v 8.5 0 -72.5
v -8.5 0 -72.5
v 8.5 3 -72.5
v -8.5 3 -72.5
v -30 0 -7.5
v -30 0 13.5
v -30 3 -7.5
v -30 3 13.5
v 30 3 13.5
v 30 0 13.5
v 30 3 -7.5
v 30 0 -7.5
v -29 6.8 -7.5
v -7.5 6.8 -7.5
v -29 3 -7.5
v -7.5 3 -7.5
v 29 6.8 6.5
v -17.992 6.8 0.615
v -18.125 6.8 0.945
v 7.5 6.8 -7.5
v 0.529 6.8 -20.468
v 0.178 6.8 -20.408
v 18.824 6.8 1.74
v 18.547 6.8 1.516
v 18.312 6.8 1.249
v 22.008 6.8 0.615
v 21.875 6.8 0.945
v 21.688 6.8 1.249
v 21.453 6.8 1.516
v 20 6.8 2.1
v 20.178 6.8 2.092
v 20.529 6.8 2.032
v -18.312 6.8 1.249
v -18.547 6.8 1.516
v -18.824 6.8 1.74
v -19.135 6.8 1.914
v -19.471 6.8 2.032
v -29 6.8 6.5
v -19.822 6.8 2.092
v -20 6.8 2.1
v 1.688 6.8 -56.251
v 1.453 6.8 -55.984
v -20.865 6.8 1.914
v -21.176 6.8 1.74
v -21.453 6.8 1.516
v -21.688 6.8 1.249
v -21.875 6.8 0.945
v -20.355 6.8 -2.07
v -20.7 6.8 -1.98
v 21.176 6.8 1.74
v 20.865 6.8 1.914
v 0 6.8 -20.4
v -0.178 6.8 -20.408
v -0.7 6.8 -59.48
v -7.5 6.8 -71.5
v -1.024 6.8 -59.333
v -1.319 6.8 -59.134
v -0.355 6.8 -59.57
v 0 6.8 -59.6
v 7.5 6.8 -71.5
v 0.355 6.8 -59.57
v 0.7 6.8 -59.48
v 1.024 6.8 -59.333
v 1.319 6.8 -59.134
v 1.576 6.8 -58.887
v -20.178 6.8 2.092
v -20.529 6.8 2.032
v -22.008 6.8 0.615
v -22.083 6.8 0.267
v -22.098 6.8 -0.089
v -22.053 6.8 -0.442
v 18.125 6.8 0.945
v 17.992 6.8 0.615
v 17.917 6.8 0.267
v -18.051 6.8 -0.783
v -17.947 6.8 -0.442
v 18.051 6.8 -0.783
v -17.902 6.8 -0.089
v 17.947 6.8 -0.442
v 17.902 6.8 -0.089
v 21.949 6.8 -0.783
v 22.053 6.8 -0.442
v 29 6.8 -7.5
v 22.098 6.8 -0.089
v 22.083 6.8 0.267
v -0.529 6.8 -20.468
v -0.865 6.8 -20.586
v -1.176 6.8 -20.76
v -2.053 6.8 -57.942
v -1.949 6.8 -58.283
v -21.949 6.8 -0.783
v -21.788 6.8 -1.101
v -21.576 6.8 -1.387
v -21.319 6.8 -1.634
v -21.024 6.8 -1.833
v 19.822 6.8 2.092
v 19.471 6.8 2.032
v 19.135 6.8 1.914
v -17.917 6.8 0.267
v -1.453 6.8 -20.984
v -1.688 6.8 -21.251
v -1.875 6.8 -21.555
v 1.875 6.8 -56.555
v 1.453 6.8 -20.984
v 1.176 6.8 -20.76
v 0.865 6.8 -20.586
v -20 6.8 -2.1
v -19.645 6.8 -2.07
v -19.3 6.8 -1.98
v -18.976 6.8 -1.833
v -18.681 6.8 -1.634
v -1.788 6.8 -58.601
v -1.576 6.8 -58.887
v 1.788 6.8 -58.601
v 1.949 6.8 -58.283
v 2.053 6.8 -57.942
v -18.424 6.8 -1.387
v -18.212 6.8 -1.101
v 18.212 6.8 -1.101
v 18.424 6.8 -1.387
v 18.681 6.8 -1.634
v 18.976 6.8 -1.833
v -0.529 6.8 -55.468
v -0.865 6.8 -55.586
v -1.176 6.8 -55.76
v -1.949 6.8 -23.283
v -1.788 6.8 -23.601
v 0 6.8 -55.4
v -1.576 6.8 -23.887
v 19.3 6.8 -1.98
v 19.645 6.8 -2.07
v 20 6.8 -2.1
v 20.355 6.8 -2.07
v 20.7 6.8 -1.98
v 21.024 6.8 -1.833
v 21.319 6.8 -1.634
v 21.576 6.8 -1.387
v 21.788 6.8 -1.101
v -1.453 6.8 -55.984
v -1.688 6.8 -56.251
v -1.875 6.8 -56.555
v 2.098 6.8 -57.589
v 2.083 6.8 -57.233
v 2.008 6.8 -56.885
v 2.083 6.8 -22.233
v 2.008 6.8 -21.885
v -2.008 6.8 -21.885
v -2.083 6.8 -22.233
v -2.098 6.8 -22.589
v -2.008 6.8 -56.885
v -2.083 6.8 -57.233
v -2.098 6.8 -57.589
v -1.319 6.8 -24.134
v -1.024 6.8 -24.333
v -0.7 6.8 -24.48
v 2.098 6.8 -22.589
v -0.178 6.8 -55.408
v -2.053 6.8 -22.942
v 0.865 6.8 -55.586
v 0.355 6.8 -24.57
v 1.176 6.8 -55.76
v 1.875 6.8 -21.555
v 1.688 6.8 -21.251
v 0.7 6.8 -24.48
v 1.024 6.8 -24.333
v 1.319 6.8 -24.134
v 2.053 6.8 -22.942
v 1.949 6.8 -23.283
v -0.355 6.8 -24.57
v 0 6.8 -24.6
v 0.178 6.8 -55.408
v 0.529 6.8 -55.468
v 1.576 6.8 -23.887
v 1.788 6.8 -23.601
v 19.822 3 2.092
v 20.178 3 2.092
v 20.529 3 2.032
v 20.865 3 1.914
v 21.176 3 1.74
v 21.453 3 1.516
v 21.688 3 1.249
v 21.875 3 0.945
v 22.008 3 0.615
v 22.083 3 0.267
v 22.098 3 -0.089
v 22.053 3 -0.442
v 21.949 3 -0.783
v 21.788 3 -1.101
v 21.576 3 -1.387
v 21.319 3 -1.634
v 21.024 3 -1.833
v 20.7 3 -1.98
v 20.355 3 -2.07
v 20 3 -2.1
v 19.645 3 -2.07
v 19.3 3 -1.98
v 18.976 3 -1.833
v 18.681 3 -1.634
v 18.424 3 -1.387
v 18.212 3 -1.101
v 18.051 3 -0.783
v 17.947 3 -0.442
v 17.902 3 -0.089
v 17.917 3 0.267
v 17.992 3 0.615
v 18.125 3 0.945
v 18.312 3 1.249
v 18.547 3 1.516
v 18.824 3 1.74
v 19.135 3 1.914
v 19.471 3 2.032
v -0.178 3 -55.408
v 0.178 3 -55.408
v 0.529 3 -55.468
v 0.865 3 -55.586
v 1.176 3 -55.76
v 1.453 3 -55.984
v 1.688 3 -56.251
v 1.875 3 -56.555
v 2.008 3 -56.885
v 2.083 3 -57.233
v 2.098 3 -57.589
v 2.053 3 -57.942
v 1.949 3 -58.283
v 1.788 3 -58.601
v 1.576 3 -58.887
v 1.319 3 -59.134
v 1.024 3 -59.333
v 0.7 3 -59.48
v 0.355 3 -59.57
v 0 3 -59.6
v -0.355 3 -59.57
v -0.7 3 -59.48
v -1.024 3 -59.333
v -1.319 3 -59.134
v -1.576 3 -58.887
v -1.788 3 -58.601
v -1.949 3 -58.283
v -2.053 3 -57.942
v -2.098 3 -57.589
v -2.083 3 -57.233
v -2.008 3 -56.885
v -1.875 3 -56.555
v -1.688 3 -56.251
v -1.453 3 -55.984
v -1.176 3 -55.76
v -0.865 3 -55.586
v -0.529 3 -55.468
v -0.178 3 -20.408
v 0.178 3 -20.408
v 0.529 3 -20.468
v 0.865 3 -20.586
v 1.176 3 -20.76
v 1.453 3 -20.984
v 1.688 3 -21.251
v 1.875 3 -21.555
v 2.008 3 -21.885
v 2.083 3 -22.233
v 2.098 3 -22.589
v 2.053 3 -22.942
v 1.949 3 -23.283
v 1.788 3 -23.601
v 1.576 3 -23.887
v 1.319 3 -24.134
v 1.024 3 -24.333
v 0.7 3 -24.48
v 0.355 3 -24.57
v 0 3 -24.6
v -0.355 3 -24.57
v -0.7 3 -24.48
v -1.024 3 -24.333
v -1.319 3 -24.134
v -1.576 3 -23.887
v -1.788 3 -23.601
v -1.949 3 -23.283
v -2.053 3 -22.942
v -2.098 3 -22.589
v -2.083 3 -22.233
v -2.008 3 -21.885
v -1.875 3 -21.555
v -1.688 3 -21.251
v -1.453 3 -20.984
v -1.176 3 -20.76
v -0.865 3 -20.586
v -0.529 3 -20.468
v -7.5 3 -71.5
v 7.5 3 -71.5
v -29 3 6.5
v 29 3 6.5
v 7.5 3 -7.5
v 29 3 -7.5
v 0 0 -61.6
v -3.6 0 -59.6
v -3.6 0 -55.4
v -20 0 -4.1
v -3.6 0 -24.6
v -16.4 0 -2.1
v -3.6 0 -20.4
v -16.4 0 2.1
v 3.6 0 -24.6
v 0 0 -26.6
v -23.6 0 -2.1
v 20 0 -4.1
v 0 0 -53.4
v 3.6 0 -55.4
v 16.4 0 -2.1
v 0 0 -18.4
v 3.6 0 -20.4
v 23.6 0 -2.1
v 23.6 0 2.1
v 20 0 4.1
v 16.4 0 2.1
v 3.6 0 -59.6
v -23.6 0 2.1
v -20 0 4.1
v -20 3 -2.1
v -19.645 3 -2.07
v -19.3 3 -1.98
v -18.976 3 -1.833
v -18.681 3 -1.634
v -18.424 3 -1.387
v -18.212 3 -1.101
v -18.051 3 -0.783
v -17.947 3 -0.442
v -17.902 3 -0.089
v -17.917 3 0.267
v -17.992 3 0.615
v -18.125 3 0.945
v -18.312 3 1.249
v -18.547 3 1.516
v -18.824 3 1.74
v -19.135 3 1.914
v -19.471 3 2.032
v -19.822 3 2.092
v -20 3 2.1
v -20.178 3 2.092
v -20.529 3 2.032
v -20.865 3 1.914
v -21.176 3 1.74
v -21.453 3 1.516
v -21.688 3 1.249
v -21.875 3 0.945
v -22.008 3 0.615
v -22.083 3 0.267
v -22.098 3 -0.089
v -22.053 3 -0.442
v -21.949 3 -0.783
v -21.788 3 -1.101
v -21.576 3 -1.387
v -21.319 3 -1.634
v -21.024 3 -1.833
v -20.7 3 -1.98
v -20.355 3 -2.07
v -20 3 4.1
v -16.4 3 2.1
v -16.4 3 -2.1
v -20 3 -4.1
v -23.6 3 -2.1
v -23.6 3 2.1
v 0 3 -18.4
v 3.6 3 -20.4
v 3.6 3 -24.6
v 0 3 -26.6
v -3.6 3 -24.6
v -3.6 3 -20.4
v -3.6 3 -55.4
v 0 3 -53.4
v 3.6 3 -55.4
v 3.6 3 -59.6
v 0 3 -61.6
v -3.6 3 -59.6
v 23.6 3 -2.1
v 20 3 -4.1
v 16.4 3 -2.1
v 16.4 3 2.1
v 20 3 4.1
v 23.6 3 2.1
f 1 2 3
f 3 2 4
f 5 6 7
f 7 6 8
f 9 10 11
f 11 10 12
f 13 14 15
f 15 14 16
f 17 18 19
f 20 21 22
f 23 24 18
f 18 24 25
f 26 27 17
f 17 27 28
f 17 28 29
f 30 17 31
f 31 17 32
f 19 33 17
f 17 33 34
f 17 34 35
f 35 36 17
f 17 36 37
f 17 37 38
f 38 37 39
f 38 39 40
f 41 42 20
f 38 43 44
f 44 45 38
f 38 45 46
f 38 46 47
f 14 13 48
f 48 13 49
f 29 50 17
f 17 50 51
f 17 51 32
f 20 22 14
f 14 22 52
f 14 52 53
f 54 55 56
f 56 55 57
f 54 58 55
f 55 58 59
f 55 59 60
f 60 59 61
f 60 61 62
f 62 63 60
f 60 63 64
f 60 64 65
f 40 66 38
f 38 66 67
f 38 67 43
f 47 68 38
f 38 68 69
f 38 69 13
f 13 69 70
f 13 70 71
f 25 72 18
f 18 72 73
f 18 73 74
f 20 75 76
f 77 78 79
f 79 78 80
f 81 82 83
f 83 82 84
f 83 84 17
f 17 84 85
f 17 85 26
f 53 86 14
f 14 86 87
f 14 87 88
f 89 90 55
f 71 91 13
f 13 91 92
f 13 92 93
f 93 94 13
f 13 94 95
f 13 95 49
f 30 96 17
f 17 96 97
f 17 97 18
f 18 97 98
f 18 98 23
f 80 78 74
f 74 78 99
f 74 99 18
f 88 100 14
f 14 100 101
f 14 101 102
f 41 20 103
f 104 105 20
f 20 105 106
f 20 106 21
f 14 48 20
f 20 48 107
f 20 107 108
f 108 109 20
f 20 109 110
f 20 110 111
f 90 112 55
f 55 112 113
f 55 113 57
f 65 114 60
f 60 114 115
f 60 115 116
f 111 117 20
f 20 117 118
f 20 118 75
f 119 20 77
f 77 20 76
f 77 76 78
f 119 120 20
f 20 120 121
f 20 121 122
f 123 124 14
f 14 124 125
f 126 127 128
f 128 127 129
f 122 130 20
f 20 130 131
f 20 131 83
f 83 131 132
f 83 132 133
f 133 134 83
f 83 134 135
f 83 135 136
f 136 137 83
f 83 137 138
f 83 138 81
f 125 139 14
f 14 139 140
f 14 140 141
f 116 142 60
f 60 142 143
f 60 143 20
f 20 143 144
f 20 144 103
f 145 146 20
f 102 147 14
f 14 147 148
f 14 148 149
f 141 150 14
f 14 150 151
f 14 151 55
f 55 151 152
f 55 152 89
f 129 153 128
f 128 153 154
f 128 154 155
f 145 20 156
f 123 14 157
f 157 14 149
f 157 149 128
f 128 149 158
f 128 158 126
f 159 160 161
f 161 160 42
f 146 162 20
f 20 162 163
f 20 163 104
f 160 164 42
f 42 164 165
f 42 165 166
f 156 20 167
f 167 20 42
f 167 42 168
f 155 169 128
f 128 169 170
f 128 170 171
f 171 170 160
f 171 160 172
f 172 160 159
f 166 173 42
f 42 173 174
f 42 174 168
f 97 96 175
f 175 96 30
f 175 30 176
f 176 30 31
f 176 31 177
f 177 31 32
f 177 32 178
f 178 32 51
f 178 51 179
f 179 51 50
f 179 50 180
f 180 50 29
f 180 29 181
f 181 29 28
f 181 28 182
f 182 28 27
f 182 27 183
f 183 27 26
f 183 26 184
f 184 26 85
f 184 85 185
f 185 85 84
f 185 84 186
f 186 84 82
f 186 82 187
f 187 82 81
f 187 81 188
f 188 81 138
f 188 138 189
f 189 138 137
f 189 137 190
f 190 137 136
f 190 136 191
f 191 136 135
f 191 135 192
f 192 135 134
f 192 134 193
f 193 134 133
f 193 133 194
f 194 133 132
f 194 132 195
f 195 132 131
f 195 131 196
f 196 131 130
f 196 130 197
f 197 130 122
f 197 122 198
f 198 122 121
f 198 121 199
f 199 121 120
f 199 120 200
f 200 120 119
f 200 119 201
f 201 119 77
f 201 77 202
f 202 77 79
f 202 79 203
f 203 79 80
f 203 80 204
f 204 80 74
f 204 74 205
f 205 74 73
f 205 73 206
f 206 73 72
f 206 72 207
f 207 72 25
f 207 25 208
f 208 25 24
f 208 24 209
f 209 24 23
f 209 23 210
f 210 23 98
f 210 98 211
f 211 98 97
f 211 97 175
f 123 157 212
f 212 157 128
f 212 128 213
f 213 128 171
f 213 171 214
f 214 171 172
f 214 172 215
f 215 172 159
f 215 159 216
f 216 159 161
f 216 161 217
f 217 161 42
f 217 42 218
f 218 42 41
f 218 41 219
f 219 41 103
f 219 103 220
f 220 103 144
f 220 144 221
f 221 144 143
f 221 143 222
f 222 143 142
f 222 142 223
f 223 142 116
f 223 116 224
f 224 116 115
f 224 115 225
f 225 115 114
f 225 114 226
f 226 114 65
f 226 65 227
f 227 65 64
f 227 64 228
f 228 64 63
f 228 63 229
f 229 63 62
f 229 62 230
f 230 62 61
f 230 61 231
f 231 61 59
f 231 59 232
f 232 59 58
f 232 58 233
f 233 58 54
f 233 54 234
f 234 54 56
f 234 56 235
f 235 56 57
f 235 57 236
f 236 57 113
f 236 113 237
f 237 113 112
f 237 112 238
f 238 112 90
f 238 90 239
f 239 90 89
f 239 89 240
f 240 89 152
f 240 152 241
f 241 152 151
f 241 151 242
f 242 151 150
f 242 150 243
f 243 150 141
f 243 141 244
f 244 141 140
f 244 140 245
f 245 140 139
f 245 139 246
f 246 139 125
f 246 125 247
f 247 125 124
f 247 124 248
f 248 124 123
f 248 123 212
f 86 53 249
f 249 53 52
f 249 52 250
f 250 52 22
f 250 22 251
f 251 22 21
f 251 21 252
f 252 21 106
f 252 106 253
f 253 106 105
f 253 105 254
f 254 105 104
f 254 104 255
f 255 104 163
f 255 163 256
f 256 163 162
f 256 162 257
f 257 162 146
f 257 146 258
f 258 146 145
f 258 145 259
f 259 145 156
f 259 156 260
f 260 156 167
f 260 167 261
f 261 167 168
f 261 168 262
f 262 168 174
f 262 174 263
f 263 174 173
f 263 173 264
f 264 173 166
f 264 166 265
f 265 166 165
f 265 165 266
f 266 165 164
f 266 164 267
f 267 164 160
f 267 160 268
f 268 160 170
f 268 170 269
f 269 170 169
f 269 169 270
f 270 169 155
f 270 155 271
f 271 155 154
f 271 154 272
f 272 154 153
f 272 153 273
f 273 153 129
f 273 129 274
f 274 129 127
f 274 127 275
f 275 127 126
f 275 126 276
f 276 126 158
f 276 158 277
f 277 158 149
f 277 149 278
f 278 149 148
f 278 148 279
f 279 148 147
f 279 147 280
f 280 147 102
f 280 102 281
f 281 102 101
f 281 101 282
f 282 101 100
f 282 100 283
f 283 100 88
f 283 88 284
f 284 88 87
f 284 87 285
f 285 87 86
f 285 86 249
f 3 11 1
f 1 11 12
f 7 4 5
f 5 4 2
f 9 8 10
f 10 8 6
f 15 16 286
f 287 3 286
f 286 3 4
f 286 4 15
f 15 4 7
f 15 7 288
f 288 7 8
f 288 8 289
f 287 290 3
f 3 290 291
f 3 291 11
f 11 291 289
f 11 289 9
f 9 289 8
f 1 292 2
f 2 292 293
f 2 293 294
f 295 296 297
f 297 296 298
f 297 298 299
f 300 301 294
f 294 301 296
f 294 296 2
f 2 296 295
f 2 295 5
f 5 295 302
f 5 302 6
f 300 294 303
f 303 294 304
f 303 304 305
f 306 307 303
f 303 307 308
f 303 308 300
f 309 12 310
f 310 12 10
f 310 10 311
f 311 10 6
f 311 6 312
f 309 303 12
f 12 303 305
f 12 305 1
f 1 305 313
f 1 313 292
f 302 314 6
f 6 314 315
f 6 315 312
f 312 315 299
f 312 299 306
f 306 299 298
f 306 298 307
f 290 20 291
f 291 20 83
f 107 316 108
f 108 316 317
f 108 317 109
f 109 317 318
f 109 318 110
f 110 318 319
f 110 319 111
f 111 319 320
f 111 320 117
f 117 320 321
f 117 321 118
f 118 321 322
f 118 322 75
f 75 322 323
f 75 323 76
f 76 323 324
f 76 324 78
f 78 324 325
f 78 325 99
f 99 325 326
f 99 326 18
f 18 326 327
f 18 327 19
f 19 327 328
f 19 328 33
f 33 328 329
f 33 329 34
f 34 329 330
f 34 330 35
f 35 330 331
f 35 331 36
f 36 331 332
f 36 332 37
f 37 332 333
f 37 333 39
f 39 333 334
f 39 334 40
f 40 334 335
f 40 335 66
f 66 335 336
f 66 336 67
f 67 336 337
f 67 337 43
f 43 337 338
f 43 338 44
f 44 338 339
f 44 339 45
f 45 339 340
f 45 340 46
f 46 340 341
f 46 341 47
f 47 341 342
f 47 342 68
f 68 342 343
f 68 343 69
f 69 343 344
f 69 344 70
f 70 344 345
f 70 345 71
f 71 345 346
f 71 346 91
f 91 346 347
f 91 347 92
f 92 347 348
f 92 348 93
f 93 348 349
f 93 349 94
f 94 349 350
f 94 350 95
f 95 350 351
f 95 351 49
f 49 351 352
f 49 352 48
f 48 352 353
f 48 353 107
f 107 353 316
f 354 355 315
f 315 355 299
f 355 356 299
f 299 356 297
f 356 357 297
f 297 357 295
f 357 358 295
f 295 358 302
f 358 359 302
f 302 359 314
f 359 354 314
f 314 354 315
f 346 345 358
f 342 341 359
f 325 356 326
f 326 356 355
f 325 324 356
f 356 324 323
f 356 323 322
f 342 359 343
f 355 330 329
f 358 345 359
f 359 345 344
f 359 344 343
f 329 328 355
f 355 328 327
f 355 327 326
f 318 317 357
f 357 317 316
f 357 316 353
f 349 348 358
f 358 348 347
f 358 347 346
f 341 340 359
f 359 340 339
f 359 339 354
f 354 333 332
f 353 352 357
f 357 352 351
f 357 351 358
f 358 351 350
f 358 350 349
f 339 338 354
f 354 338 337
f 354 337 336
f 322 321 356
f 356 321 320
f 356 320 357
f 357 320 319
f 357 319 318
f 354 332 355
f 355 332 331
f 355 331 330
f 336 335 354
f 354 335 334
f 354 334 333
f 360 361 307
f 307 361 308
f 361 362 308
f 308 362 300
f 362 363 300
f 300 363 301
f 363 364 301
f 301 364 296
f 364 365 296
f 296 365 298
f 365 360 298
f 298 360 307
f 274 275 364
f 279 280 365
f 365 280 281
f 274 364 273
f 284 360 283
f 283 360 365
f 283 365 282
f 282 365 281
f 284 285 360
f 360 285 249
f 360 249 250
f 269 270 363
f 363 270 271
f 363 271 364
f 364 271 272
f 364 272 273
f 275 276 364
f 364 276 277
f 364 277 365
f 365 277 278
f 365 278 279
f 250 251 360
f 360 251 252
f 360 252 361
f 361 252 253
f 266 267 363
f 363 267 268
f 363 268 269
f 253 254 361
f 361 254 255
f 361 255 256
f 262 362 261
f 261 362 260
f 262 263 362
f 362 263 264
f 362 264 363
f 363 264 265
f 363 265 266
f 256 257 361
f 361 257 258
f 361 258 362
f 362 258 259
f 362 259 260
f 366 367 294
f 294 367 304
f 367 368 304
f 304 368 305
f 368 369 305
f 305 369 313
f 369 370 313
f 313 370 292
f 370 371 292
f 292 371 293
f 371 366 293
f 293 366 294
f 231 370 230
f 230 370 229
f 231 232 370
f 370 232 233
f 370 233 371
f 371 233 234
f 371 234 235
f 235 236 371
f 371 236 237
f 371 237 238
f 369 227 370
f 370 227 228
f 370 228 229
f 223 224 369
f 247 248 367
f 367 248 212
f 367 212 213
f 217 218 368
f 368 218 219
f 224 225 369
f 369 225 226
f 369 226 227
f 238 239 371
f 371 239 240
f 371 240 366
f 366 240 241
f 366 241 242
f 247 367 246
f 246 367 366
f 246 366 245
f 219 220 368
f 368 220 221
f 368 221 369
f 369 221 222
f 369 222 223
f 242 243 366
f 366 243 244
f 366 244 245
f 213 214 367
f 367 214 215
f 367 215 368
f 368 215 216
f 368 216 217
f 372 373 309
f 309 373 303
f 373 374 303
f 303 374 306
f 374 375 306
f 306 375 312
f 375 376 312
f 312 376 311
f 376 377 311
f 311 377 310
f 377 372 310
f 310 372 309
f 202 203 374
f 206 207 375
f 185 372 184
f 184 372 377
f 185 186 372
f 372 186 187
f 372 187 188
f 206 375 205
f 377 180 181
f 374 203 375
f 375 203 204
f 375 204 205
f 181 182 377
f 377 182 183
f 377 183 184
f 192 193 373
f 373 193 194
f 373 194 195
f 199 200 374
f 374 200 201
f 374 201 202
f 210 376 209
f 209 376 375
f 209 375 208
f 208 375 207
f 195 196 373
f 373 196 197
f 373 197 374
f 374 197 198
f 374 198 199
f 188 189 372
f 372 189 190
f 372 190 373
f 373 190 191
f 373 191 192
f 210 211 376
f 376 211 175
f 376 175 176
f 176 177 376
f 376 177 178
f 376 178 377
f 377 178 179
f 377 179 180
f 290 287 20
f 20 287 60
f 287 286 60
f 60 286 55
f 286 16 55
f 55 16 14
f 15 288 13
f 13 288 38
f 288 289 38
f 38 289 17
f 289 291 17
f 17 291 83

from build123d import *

# Parameters (mm, degrees)
SKETCH1_W           = 17
SKETCH1_H           = 65
SKETCH1_R           = 2.1
SKETCH1_W_2         = 60
SKETCH1_H_2         = 15
SKETCH1_H_3         = 6
BOSS_EXTRUDE1_DEPTH = 3
SKETCH2_W           = 17
SKETCH2_H           = 65
SKETCH2_R           = 2.1
BOSS_EXTRUDE2_DEPTH = 3.8
SKETCH3_R           = 2.1
CUT_EXTRUDE1_DEPTH  = 18.8
CUT_EXTRUDE2_DEPTH  = 3
SKETCH5_W           = 1
SKETCH5_H           = 1
SKETCH5_W_2         = 15
SKETCH5_H_2         = 64
SKETCH5_H_3         = 14
SKETCH5_W_3         = 58
CUT_EXTRUDE3_DEPTH  = 3.8


with BuildPart() as part:
    # Sketch1 → Boss-Extrude1 (new body)
    with BuildSketch(Plane(origin=(0, 0, 0), x_dir=(1, 0, 0), z_dir=(0, 1, 0))):
        Polygon((-8.5, 72.5), (-30, 7.5), (-8.5, 7.5), align=None)
        Polygon((8.5, 7.5), (30, 7.5), (8.5, 72.5), align=None)
        with Locations((0, 40)):
            Rectangle(SKETCH1_W, SKETCH1_H)
        with Locations((0, 22.5)):
            Circle(SKETCH1_R, mode=Mode.SUBTRACT)
        with Locations((0, 57.5)):
            Circle(SKETCH1_R, mode=Mode.SUBTRACT)
        Rectangle(SKETCH1_W_2, SKETCH1_H_2)
        with Locations((-20, 0)):
            Circle(SKETCH1_R, mode=Mode.SUBTRACT)
        with Locations((20, 0)):
            Circle(SKETCH1_R, mode=Mode.SUBTRACT)
        with Locations((0, -10.5)):
            Rectangle(SKETCH1_W_2, SKETCH1_H_3)
        with Locations((0, 57.5)):
            Circle(SKETCH1_R)
        with Locations((0, 22.5)):
            Circle(SKETCH1_R)
        with Locations((-20, 0)):
            Circle(SKETCH1_R)
        with Locations((20, 0)):
            Circle(SKETCH1_R)
    extrude(amount=BOSS_EXTRUDE1_DEPTH)

    # Sketch2 → Boss-Extrude2 (add)
    with BuildSketch(Plane(origin=(0, 3, 0), x_dir=(1, 0, 0), z_dir=(0, 1, 0))):
        with Locations((0, 40)):
            Rectangle(SKETCH2_W, SKETCH2_H)
        with Locations((0, 22.5)):
            Circle(SKETCH2_R, mode=Mode.SUBTRACT)
        with Locations((0, 57.5)):
            Circle(SKETCH2_R, mode=Mode.SUBTRACT)
        Polygon((-8.5, 7.5), (-30, 7.5), (-30, -7.5), (30, -7.5), (30, 7.5), (8.5, 7.5), align=None)
        with Locations((-20, 0)):
            Circle(SKETCH2_R, mode=Mode.SUBTRACT)
        with Locations((20, 0)):
            Circle(SKETCH2_R, mode=Mode.SUBTRACT)
    extrude(amount=BOSS_EXTRUDE2_DEPTH)

    # Sketch3 → Cut-Extrude1 (cut)
    with BuildSketch(Plane(origin=(0, 6.8, 0), x_dir=(1, 0, 0), z_dir=(0, 1, 0))):
        with Locations((0, 57.5)):
            Circle(SKETCH3_R)
        with Locations((0, 22.5)):
            Circle(SKETCH3_R)
        with Locations((20, 0)):
            Circle(SKETCH3_R)
        with Locations((-20, 0)):
            Circle(SKETCH3_R)
    extrude(amount=-CUT_EXTRUDE1_DEPTH, mode=Mode.SUBTRACT)

    # Sketch4 → Cut-Extrude2 (cut)
    with BuildSketch(Plane(origin=(0, 0, 0), x_dir=(-1, 0, 0), z_dir=(0, -1, 0))):
        Polygon((23.6, 2.1), (23.6, -2.1), (20, -4.1), (16.4, -2.1), (16.4, 2.1), (20, 4.1), align=None)
        Polygon((-23.6, 2.1), (-23.6, -2.1), (-20, -4.1), (-16.4, -2.1), (-16.4, 2.1), (-20, 4.1), align=None)
        Polygon((0, 18.4), (3.6, 20.4), (3.6, 24.6), (0, 26.6), (-3.6, 24.6), (-3.6, 20.4), align=None)
        Polygon((3.6, 55.4), (3.6, 59.6), (0, 61.6), (-3.6, 59.6), (-3.6, 55.4), (0, 53.4), align=None)
    extrude(amount=-CUT_EXTRUDE2_DEPTH, mode=Mode.SUBTRACT)

    # Sketch5 → Cut-Extrude3 (cut)
    with BuildSketch(Plane(origin=(0, 6.8, 0), x_dir=(1, 0, 0), z_dir=(0, 1, 0))):
        with Locations((8, 72)):
            Rectangle(SKETCH5_W, SKETCH5_H)
        with Locations((0, 72)):
            Rectangle(SKETCH5_W_2, SKETCH5_H)
        with Locations((-8, 72)):
            Rectangle(SKETCH5_W, SKETCH5_H)
        with Locations((-8, 39.5)):
            Rectangle(SKETCH5_W, SKETCH5_H_2)
        with Locations((8, 39.5)):
            Rectangle(SKETCH5_W, SKETCH5_H_2)
        with Locations((29.5, -7)):
            Rectangle(SKETCH5_W, SKETCH5_H)
        with Locations((-29.5, -7)):
            Rectangle(SKETCH5_W, SKETCH5_H)
        with Locations((-29.5, 0.5)):
            Rectangle(SKETCH5_W, SKETCH5_H_3)
        with Locations((0, -7)):
            Rectangle(SKETCH5_W_3, SKETCH5_H)
        with Locations((29.5, 0.5)):
            Rectangle(SKETCH5_W, SKETCH5_H_3)
    extrude(amount=-CUT_EXTRUDE3_DEPTH, mode=Mode.SUBTRACT)


solid = part.part
